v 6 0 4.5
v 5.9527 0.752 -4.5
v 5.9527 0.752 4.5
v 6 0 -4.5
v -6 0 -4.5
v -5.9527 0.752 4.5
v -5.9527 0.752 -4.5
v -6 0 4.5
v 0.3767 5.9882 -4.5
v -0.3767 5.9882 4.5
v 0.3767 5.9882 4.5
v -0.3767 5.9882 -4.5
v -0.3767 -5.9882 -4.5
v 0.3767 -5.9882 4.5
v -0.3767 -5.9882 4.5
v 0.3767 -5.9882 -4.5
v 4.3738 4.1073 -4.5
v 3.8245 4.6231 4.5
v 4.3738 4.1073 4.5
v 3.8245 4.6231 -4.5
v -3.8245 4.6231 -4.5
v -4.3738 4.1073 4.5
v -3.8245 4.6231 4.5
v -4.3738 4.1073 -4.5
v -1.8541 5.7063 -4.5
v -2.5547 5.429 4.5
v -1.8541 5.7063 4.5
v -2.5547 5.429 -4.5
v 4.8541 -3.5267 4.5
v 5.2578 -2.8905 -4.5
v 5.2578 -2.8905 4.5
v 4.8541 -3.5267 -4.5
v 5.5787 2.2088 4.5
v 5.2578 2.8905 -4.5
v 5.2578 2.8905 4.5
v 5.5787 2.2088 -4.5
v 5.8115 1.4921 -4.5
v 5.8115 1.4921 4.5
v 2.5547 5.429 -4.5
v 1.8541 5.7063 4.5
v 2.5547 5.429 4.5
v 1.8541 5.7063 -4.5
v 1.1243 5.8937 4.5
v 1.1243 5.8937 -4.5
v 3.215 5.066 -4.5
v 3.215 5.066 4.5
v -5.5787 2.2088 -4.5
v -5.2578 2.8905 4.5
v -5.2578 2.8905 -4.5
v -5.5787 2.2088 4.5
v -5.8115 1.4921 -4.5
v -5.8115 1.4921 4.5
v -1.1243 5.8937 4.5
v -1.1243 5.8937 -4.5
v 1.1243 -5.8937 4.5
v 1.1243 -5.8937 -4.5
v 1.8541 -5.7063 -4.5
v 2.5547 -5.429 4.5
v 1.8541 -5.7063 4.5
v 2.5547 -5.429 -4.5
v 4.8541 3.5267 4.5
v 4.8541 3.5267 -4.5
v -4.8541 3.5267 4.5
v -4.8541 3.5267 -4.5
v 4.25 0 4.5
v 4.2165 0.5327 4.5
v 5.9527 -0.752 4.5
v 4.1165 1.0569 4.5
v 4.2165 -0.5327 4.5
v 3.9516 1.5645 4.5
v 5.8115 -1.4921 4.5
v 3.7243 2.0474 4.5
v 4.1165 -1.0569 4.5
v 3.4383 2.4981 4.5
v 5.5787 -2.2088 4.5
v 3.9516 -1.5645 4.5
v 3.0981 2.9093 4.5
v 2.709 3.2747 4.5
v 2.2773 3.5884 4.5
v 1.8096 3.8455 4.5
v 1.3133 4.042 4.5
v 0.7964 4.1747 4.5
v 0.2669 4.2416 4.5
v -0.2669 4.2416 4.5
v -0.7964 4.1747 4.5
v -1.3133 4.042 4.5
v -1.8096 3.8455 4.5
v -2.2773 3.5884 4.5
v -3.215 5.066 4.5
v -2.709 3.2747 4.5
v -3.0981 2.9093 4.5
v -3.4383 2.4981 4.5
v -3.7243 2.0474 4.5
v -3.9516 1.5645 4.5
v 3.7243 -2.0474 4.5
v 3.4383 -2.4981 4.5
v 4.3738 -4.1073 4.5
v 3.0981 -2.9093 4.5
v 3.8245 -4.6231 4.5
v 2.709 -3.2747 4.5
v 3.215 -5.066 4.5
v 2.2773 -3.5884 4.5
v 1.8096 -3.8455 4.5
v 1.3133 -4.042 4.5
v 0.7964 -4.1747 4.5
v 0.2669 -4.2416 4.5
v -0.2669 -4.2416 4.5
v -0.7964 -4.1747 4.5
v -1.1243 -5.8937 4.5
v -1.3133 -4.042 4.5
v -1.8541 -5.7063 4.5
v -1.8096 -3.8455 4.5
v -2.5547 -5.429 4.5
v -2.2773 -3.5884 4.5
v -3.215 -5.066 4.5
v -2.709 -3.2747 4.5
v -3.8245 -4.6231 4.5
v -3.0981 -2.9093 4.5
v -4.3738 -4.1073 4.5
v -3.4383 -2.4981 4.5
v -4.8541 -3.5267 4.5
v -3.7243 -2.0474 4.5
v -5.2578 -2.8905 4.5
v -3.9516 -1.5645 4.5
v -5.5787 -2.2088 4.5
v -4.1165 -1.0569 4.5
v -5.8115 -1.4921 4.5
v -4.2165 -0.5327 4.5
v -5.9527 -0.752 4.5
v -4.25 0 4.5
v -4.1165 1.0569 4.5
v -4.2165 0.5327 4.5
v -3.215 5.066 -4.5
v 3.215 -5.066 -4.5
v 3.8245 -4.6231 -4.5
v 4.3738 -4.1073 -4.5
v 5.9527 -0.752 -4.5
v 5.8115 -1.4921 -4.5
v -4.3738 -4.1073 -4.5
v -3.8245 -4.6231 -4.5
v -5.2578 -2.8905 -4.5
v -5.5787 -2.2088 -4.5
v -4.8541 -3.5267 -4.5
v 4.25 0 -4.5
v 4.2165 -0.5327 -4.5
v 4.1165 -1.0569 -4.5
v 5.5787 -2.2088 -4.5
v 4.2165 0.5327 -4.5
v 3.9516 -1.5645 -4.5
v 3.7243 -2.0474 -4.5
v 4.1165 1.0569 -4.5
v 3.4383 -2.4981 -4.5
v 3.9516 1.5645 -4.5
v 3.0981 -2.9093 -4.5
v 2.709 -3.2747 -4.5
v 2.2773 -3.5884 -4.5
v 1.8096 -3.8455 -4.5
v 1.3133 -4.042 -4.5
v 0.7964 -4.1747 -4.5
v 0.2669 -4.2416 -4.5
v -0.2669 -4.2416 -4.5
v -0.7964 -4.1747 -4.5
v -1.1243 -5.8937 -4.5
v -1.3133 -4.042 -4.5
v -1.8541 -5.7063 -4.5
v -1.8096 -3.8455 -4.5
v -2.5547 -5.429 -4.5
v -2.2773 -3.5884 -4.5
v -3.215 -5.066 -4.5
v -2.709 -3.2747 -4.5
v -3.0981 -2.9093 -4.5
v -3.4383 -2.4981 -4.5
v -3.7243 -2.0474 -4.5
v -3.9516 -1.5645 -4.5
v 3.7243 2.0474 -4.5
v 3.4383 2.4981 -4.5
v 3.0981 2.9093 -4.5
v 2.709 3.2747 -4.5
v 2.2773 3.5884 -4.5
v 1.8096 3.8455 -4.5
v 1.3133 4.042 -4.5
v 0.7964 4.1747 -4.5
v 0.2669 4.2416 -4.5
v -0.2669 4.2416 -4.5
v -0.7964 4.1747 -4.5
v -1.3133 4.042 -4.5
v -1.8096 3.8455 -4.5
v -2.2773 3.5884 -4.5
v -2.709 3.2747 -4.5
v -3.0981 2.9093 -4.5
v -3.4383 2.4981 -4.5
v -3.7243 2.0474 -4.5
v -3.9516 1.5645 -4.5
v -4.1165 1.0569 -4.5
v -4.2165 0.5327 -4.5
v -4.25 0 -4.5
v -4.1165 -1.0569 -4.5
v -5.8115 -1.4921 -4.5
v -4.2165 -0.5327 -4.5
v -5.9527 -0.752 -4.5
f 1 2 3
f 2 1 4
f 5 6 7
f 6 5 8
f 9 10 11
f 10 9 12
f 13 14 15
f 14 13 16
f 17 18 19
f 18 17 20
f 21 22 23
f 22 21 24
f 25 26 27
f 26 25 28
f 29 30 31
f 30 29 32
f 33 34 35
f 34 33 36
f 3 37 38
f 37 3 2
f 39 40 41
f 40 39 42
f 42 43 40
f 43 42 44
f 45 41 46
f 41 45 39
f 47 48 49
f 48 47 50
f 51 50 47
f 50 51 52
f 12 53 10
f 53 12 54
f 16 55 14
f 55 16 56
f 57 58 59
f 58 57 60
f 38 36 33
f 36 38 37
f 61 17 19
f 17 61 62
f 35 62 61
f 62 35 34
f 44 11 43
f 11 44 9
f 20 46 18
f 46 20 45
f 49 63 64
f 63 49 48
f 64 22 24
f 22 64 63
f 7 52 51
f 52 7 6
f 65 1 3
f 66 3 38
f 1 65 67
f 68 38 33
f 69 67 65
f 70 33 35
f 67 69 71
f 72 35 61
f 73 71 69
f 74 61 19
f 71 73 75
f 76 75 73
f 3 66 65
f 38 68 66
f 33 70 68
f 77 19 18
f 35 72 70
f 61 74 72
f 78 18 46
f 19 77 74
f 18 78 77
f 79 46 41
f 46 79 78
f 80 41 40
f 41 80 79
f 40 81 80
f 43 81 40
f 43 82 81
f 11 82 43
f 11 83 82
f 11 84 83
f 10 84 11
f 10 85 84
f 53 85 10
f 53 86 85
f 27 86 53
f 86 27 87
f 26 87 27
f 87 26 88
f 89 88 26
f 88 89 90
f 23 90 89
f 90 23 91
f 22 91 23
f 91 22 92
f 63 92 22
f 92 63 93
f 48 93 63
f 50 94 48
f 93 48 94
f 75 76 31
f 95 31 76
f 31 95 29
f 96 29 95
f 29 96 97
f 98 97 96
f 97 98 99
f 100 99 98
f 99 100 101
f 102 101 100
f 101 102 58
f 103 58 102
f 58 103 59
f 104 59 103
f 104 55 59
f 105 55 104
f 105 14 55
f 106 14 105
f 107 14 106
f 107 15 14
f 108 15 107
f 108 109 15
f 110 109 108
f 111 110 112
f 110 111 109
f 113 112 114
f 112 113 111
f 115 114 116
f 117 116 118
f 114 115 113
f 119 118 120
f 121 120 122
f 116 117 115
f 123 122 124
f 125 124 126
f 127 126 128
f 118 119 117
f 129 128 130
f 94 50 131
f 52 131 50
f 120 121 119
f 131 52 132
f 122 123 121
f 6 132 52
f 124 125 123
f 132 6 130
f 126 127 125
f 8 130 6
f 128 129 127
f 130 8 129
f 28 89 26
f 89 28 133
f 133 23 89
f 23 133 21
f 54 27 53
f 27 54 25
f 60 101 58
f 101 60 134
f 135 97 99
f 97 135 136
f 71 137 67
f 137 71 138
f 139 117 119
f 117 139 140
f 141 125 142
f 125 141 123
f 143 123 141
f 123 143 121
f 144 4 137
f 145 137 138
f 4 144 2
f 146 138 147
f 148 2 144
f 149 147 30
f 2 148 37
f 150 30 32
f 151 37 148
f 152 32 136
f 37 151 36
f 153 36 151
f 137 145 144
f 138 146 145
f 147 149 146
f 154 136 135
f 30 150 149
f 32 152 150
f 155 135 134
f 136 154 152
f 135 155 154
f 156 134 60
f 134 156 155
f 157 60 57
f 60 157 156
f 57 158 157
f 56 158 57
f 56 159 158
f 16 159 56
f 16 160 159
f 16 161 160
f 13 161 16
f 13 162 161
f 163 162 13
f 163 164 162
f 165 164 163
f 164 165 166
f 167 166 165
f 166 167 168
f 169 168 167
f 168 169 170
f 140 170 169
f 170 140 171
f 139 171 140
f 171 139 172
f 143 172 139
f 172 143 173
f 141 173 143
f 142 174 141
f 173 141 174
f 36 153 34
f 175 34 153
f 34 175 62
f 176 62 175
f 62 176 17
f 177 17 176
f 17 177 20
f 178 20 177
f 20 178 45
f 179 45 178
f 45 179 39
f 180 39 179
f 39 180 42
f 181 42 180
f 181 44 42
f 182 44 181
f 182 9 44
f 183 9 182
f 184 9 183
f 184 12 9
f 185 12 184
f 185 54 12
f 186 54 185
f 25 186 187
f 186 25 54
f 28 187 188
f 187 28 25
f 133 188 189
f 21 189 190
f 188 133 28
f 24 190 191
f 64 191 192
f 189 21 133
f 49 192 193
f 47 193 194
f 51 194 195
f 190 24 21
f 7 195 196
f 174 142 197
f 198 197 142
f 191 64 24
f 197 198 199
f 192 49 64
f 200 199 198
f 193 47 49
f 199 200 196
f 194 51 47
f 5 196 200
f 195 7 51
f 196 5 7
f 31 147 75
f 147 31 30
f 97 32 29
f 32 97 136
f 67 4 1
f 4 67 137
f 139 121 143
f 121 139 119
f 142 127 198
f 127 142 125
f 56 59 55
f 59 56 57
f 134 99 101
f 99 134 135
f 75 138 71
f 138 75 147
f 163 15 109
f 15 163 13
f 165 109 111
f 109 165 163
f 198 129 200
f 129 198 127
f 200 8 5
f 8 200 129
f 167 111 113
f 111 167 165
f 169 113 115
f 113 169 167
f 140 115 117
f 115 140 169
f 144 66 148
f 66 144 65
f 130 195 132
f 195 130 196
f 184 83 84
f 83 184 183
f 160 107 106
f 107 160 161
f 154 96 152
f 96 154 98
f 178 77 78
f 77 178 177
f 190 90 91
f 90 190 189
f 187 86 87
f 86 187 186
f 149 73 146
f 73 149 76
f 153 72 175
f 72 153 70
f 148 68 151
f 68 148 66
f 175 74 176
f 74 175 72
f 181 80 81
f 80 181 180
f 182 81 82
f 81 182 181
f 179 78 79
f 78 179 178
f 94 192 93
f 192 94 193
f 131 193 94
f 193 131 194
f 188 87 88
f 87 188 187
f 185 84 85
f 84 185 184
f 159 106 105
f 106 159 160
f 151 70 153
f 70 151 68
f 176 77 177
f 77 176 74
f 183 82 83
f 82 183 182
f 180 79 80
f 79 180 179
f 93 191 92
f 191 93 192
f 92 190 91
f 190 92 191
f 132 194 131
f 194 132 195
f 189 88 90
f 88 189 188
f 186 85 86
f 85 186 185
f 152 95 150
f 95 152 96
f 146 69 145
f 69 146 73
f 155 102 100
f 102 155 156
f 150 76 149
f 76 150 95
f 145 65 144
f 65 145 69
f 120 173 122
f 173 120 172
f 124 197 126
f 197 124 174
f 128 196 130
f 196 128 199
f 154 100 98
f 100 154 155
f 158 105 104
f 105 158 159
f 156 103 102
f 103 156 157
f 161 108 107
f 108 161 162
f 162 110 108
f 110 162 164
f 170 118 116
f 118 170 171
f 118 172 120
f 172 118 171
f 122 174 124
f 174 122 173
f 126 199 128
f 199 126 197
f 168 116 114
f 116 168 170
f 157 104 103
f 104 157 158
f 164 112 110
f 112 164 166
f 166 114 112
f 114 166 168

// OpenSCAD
$fn = 50;


difference() {
	union() {
		translate(v = [0, 0, -4.5000000000]) {
			cylinder(h = 9, r = 6.0000000000);
		}
	}
	union() {
		translate(v = [0, 0, -100.0000000000]) {
			cylinder(h = 200, r = 4.2500000000);
		}
	}
}
